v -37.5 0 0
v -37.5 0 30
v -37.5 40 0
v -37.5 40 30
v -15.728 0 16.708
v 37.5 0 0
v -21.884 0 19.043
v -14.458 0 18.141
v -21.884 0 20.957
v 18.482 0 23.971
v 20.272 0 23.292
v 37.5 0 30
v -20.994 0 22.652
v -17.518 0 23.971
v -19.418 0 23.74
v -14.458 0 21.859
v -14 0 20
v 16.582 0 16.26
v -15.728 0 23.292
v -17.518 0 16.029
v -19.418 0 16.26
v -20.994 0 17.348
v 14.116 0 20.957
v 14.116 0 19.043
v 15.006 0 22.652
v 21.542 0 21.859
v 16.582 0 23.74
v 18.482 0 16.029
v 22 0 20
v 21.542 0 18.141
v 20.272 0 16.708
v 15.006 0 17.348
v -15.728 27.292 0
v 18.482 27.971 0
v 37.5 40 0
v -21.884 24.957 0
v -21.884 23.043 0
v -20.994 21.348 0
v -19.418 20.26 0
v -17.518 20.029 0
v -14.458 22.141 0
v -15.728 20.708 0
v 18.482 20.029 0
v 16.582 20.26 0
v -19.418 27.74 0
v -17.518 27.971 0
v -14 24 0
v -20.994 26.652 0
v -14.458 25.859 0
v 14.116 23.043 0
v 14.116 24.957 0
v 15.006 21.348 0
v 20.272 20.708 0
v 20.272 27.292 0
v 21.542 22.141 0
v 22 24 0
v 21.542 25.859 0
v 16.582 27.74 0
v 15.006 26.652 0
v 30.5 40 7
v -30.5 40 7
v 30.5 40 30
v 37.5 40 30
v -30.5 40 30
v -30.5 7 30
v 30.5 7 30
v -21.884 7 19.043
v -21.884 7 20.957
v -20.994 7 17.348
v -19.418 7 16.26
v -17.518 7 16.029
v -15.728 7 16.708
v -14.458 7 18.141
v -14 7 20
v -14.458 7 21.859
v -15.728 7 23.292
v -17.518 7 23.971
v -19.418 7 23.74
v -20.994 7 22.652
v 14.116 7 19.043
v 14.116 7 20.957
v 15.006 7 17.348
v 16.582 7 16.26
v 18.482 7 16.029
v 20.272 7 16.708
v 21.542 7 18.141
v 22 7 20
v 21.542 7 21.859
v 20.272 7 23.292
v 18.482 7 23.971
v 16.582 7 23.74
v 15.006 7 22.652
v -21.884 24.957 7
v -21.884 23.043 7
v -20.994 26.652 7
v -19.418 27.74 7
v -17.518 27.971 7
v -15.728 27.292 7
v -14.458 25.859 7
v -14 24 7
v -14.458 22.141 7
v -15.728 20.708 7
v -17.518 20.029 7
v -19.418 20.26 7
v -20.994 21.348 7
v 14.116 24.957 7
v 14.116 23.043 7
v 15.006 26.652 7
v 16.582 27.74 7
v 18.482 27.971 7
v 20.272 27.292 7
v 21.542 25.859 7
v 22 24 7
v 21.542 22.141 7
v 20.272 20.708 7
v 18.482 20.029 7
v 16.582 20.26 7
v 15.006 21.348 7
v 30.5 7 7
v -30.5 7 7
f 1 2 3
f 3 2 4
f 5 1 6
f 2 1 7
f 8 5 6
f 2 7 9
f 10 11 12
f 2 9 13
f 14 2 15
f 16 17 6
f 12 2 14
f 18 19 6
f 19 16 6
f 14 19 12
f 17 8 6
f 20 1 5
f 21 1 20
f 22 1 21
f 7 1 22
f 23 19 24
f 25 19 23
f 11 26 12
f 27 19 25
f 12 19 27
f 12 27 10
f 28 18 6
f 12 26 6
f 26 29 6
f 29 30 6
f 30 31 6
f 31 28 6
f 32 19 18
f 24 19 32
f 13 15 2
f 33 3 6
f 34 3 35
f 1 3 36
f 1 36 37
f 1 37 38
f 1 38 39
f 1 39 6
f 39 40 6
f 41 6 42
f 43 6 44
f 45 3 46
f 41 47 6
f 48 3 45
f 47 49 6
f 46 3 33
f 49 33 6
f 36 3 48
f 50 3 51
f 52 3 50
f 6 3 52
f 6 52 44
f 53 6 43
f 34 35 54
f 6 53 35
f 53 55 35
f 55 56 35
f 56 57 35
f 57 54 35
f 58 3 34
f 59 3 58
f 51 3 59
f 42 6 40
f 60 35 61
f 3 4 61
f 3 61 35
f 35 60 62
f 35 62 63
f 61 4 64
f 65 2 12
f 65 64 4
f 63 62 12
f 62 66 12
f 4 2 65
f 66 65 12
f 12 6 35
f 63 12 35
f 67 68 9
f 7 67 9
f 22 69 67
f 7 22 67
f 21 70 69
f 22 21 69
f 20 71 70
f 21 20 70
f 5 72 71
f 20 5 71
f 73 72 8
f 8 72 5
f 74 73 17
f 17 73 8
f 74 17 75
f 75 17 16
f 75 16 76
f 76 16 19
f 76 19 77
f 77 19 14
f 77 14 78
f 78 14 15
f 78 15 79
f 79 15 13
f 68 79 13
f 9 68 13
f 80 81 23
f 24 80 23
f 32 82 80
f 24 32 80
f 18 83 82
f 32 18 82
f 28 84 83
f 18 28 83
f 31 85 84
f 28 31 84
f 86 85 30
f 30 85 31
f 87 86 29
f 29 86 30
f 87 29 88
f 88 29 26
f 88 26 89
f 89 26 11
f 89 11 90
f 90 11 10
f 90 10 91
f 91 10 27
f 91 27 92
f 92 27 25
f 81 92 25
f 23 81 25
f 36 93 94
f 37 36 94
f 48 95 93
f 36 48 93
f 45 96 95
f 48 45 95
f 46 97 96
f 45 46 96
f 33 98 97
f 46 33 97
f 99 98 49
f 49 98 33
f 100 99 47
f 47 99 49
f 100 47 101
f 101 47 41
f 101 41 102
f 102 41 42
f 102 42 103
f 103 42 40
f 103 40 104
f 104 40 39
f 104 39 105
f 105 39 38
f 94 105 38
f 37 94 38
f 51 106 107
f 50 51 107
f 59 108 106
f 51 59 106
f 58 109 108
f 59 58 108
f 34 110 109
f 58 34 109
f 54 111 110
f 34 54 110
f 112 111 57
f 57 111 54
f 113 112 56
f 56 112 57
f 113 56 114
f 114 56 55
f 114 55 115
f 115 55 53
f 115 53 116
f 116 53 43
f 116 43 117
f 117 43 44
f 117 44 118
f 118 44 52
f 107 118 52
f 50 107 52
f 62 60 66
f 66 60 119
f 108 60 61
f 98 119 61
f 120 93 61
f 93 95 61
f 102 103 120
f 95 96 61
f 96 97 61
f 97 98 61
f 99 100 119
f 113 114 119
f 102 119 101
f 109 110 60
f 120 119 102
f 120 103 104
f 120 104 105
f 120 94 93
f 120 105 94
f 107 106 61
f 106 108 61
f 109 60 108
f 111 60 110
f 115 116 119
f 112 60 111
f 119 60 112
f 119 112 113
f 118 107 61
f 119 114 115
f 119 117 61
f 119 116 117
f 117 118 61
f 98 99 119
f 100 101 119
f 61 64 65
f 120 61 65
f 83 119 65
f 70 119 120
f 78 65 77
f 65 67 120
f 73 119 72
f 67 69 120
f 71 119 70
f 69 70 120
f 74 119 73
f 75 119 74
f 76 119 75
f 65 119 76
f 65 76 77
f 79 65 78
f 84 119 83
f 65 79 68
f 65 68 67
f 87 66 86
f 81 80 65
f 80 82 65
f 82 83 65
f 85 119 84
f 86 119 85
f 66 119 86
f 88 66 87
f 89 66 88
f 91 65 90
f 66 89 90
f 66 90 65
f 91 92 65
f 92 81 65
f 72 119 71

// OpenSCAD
// file: includes/includes/jonaskuehling-default.scad
module teardrop (r=4.5,h=20,alpha=45,teardropcorner=0,fulldrop=false){		// tear drop hole for top-centering
											// use teardropcorner=1 for bottom horizontal corners
	render()
	translate([-h/2,0,0])
		rotate([-270,0+(teardropcorner*180),90])
			difference(){
				linear_extrude(height=h){
					circle(r, $fn=24);
					polygon(points=[[0,0],[r*cos(alpha),r*sin(alpha)],[0,r/sin(alpha)],[-r*cos(alpha),r*sin(alpha)]], paths=[[0,1,2,3]]);
				}
				if(fulldrop==false) 
					translate([0,(r/sin(alpha))/2+r,h/2]) cube([2*r+2,r/sin(alpha),h+2],center=true);
			}
}

//teardrop(4.5,22,fulldrop=true);



module teardropcentering (r=4.5,h=20,alpha=45){				// tear drop hole for top-centering
	centering_offset_factor = 1.1;
	render()
	translate([-h/2,0,0])
		rotate([-270,0,90])
			difference(){
				linear_extrude(height=h){
					circle(r, $fn=24);
					polygon(points=[[0,0],[r*cos(alpha),r*sin(alpha)],[0,r/sin(alpha)],[-r*cos(alpha),r*sin(alpha)]], paths=[[0,1,2,3]]);
				}
				translate([0,(r/sin(alpha))/2+r*centering_offset_factor,h/2]) cube([2*r+2,r/sin(alpha),h+2],center=true);
			}
}

//teardropcentering();



module teardropcentering_half (r=4.5,h=20, bottom=0,alpha=45){				// tear drop hole for top-centering
																// upper half (bottom=0) or bottom half (bottom=1)
	centering_offset_factor = 1.2;
	render()
	translate([-h/2,0,0])
		rotate([-270,0,90])
			difference(){
				linear_extrude(height=h){
					circle(r, $fn=24);
					polygon(points=[[0,0],[r*cos(alpha),r*sin(alpha)],[0,r/sin(alpha)],[-r*cos(alpha),r*sin(alpha)]], paths=[[0,1,2,3]]);
				}
				translate([0,(r/sin(alpha))/2+r*centering_offset_factor,h/2]) cube([2*r+2,r/sin(alpha),h+2],center=true);
				translate([0,-(r*centering_offset_factor)/2-0.5+bottom*(r*centering_offset_factor+1),h/2]) cube([2*r+2,r*centering_offset_factor+1,h+2],center=true);
			}
}

//teardropcentering_half(bottom=0);


module polyhole(d,h){
	n = max(round(2 * d),3);
	cylinder(h = h, r = (d / 2) / cos (180 / n), $fn = n, center=true);
}



module roundcorner(radius,edge_length){
	render()
	translate([0,0,-1])
		difference(){
			translate([-1,-1,0]) cube(size = [radius+1,radius+1,edge_length+2], center = false);
			translate(v = [radius,radius,-1]) cylinder(h = edge_length+4, r=radius, center=false);
		}
}

//roundcorner(5,5);



module roundcorner_tear(radius,edge_length){
	render()
	difference(){
		translate([-1,-1,-1]) cube(size = [edge_length+2, radius+1, radius+1], center = false);
		translate([(edge_length+4)/2-2, radius, radius])
			teardrop(radius, edge_length+4,teardropcorner=1);
	}
}

//roundcorner_tear(8,20);



module nut_trap(nut_wrench_size,trap_height,vertical=true, clearance=0.2){		// M3 wrench size = 5.5
	cornerdiameter =  (((nut_wrench_size)/2)+clearance) / cos(180/6);
	rotate([0,vertical*90,0])
		cylinder(h = trap_height, r = cornerdiameter, center=true, $fn = 6);
}



module nut_slot(nut_wrench_size,nut_height, nut_elevation,vertical=false, clearance=0.2){		// M3 wrench size = 5.5
	cornerdiameter =  (((nut_wrench_size)/2)+clearance) / cos(180/6);
	slot_height = nut_height+2*clearance;
	slot_width = nut_wrench_size+2*clearance;
	rotate([0,vertical*270,0]){
		cylinder(h = slot_height, r = cornerdiameter, center=true, $fn = 6);
		translate([0,-slot_width/2,-slot_height/2]) cube([nut_elevation+1,slot_width,slot_height]);
	}
}

//nut_slot(5.5,3,4,1);



module barbell (x1,x2,r1,r2,r3,r4) 
{
	x3=triangulate (x1,x2,r1+r3,r2+r3);
	x4=triangulate (x2,x1,r2+r4,r1+r4);
	render()
	difference ()
	{
		union()
		{
			translate(x1)
			circle (r=r1);
			translate(x2)
			circle(r=r2);
			polygon (points=[x1,x3,x2,x4]);
		}
		
		translate(x3)
		circle(r=r3,$fa=5);
		translate(x4)
		circle(r=r4,$fa=5);
	}
}

function triangulate (point1, point2, length1, length2) = 
point1 + 
length1*rotated(
atan2(point2[1]-point1[1],point2[0]-point1[0])+
angle(distance(point1,point2),length1,length2));

function distance(point1,point2)=
sqrt((point1[0]-point2[0])*(point1[0]-point2[0])+
(point1[1]-point2[1])*(point1[1]-point2[1]));

function angle(a,b,c) = acos((a*a+b*b-c*c)/(2*a*b)); 

function rotated(a)=[cos(a),sin(a),0];
// file: includes/lm8uu-holder-slim_double-vertical.scad
// LM8UU holder slim
// *********************************************
// Jonas Kühling
// http://www.jonaskuehling.de
// http://www.thingiverse.com/jonaskuehling
// *********************************************
// derived from:
// http://www.thingiverse.com/thing:14942

use <includes/jonaskuehling-default.scad>

// LM8UU/rod dimensions
LM8UU_dia = 15.4;
LM8UU_length = 24;
rod_dia = 8;

//screw/nut dimensions (M3) - hexagon socket head cap screw ISO 4762, hexagon nut ISO 4032
screw_thread_dia_iso = 3;
screw_head_dia_iso = 5.5;
nut_wrench_size_iso = 5.5;


// screw/nut dimensions for use (plus clearance for fitting purpose)
clearance_dia = 0.5;
screw_thread_dia = screw_thread_dia_iso + clearance_dia;
screw_head_dia = screw_head_dia_iso + clearance_dia;
nut_wrench_size = nut_wrench_size_iso + clearance_dia;
nut_dia_perimeter = (nut_wrench_size/cos(30));
nut_dia = nut_dia_perimeter;
nut_surround_thickness = 2;

// main body dimensions
body_wall_thickness = 2;
body_width = LM8UU_dia + (2*body_wall_thickness);
body_height = body_width;
body_length = 60;
gap_width = rod_dia + 2;
screw_bushing_space = 1;
screw_elevation = LM8UU_dia + body_wall_thickness + (screw_thread_dia/2) +screw_bushing_space;

overhang_angle = 60;
r = nut_dia_perimeter/2+nut_surround_thickness;
extra_height_varticalprint = r*sin(90-overhang_angle);

// TEST - uncomment to render in openscad:
//lm8uu_holder_slim_double_vertical();		



// main body
module lm8uu_holder_slim_double_vertical()
{
	// rotate vertical and center bearing around z-axis
	translate([0,-(LM8UU_dia/2+body_wall_thickness),body_length/2])
	rotate([-90,0,0])
	difference()
	{
		union()
		{	
			// body
			translate([-body_width/2,-body_length/2,body_height/2])
				cube([body_width,body_length,(LM8UU_dia/2)+screw_bushing_space+(screw_thread_dia/2)+extra_height_varticalprint]);
			translate([0,0,(LM8UU_dia/2)+body_wall_thickness])		
				rotate([90,0,0])
					cylinder(r=(LM8UU_dia/2)+body_wall_thickness, h=body_length, center=true);
	
			// gap support
			translate([-(gap_width/2)-body_wall_thickness,-(body_length/2),body_height/2])
				cube([body_wall_thickness,LM8UU_length,(LM8UU_dia/2)+screw_bushing_space+(screw_thread_dia/2)]);
			translate([gap_width/2,-(body_length/2),body_height/2])
				cube([body_wall_thickness,LM8UU_length,(LM8UU_dia/2)+screw_bushing_space+(screw_thread_dia/2)]);
	
			for(i=[-(body_length/2-LM8UU_length/2),(body_length/2-LM8UU_length/2)])
			{
				// nut trap surround
				translate([gap_width/2,i,screw_elevation])
					rotate([0,90,0])
						cylinder(r=(((nut_wrench_size+nut_surround_thickness*2)/cos(30))/2), h=(body_width-gap_width)/2, $fn=20);
	
				// Screw hole surround
				translate([-gap_width/2,i,screw_elevation])
					rotate([0,-90,0])
						cylinder(r=(screw_head_dia/2)+nut_surround_thickness, h=(body_width-gap_width)/2, $fn=20);
			}
		}
	
		// bushing hole
		translate([0,0,LM8UU_dia/2+2])
			rotate([90,0,0])
				polyhole(d=LM8UU_dia, h=body_length+1, center=true);
	
		// top gap
		translate([-(gap_width/2),-(body_length/2)-1,body_height/2])
			cube([gap_width,body_length+2,(LM8UU_dia/2)+screw_bushing_space+(screw_thread_dia/2)+(nut_dia/2)+nut_surround_thickness+1]);
	
		for(i=[-(body_length/2-LM8UU_length/2),(body_length/2-LM8UU_length/2)])
		{
			// screw hole (one all the way through)
			translate([0,i,screw_elevation])
				rotate([0,90,0])
					polyhole(d=screw_thread_dia, h=body_width+3, center=true);
		
			// nut trap
			translate([gap_width/2+body_wall_thickness,i,screw_elevation])
				rotate([0,90,0])
					cylinder(r=nut_dia/2, h=body_width/2-gap_width/2-body_wall_thickness+1,$fn=6);
		
			// screw head hole
			translate([-(gap_width)/2-body_wall_thickness,i,screw_elevation])
				rotate([0,-90,0])
					cylinder(r=screw_head_dia/2, h=body_width/2-gap_width/2-body_wall_thickness+1,$fn=20);

		}	
	}
}

/*
// Based on nophead research
module polyhole(d,h,center=false) {
    n = max(round(2 * d),3);
    rotate([0,0,180])
        cylinder(h = h, r = (d / 2) / cos (180 / n), center=center, $fn = n);
}
*/
// file: configuration.scad
// Harmonic drive main parameters
press_angle = 40;
flex_teeth = 50;
teeth_diff = 2;

tol = 0.25; // generic tolerance used in some places
lh = 0.3; // layer height needed in a few places

// Main geometry
bearing_r = 22/2;
bearing_h = 7;
washer_h = 1;
bolthead_h = 4;
stepper_shaft_h = 20;
circ_drive_bearing_indent = 1;
flex_bearing_indent = 1;
drive_bearing_r = 13/2;
drive_bearing_h = 7;

// Flexspline dimensions
flex_inner_r = 25.4;
flex_h = 36;
flex_bottom_h = 2;
flex_bolthole_r = 6;
flex_wt = 0.81;
flex_lip = 1;
pitch = 197;
helix_twist = 5;

// Circspline dimensions
circ_h = 20;
circ_outer_r = 34;
circ_inner_r = 30;
circ_bottom_h = 4;
// Negative clearance cuts a bit from the top of the teeth
circ_tooth_clearance = -0.5;

// Wave driver dimensions
wave_radius = 52.75/2;
driver_h = 12;
driver_w = 10;
drive_bearing_spacing_r = wave_radius - drive_bearing_r;

// The total height of the drive unit, excluding the motor and flexspline base.
assy_h = 50;
stepper_shaft_l = 20;

tooth_overlap = (flex_h + circ_h) - assy_h;

// Position of the middle of the tooth overlap section on the stepper shaft.
stepper_shaft_mid_rot = circ_h - tooth_overlap/2;

echo(str("Tooth overlap: ", tooth_overlap));
echo(str("Drive midpoint on stepper shaft: ", stepper_shaft_mid_rot));

red_r = teeth_diff/flex_teeth;
echo(str("Reduction ratio: 1/", flex_teeth/teeth_diff, " (", red_r, ")"));
echo(str("With 200x16 motor, arc minutes per microstep: ", 360*60/(200*16)*red_r));
echo(str("Linear resolution (mm) for 100 mm arm: ", sin(360/(200*16)*red_r) * 100));
echo(str("Torque (N) at 100 mm for 40 Ncm motor: ", 4/red_r));
echo(str("Linear speed equivalent to standard Prusa's 300 mm/s at 100 mm: ",
         300*80 * sin(360/(200*16)*red_r) * 100));

// Circspline mount dimensions
circ_mount_r = circ_outer_r + 6;
circ_mount_h = 8;
circ_mount_1 = 45;
circ_mount_2 = 135;
circ_mount_3 = 225;

// Master arm height setting
main_arm1_height = 12;
main_arm2_height = 12;

// Arm 1st segment dimensions
arm_flex_base_bottom_h = 3;
arm_flex_base_h = 8;
arm_joint1_base_h = main_arm1_height;
arm_joint1_base_r = 15;
arm_joint1_bearing_indent = 7;
arm_large_bolthole_r=6;
arm_w = 30;
arm1_h = main_arm1_height;

// default length
length = 100;

// Truss generation parameters. The element width must be smaller than
// thickness to avoid the top becoming unprintable (triangle outlines
// over thin air)
truss_thickness = 3.5;
truss_width_coeff = 0.75;
truss_radius = 0.1;
truss_arm1 = 1.07; // Extra coefficient for arm1

// Arm 2nd segment dimensions
arm2_h = main_arm2_height;
arm_separation = arm_joint1_base_h - arm_joint1_bearing_indent 
  + bearing_h + washer_h * 2;
arm_bolthole_r=4;
arm_joint2_base_h = main_arm2_height;
arm_joint2_base_r = 15;
arm_joint3_hollow_r = 10;
arm_joint31_base_h = main_arm2_height;
arm_joint31_base_r = 15;
arm_joint31_bearing_r = 13/2;
arm_joint31_bearing_h = 5;
arm_joint31_bearing_clearance = 2;
arm_joint32_base_h = main_arm2_height;
arm_joint32_base_r = 15;
arm_joint32_tube_h_clearance = 1;
arm_joint32_tube_wt = 2;
arm_joint32_tube_groove_depth = 1;
arm_joint31_bearing_spacing = arm_joint3_hollow_r + arm_joint32_tube_wt 
  + arm_joint31_bearing_r;

echo(str("Arm final stage vertical separation: ", arm_separation));
echo(str("Arm final stage total height: ", arm_separation + 2 * arm2_h));

// Default arm lengths
arm1_length = 100;
arm2_length = 150;
arm_spacing = 75;
arm_base_maxrot = 90 - asin((circ_outer_r + arm_w/2) / arm_spacing);
arm_joint_maxrot = 150; // hand-tuned
echo(str("Arm base minimum rotation to clear other base: ", arm_base_maxrot));

// Z carriage dimensions
carr_floor = 1; // Carriage floor thickness.
carr_wt = 3; // Carriage wall thickness.
carr_truss_width = arm_spacing + bearing_r * 2 + 4; // 120;
carr_truss_depth = 15;
drive_h = assy_h + bearing_h + washer_h 
  + arm_flex_base_bottom_h; // Total length needed by the drive unit.
carr_truss_length = circ_outer_r + 1 + carr_wt + bearing_r + 2;
carr_rod_offset = -45;
carr_drive_offset = -40;
carr_top_support_thickness = 3;
carr_top_support_width = 14;
carr_top_support_length = 70;

// Z end dimensions
z_end_bottom_thickness = 7;
z_end_bottom_width = arm_spacing + 20;
z_end_bottom_length = 40;
z_end_top_length = 50;
z_end_bottom_height = 30;
z_end_rod_offset = 24; // rod center from vertical plate
// file: common.scad
include <configuration.scad>;
use <includes/parametric_involute_gear_v5.0.scad>;
use <includes/SolidReplacementTruss.scad>;
include <includes/lm8uu-holder-slim_double-vertical.scad>;

// Generic spline gear with a herringbone section
module spline_gear(number_of_teeth, circular_pitch, pressure_angle,
                   height, helix_height, twist, backlash, clearance) {
  gear(number_of_teeth=number_of_teeth,
	     circular_pitch=circular_pitch,
	     pressure_angle=pressure_angle,
	     clearance = clearance,
	     gear_thickness = height - helix_height,
   	     rim_thickness = height - helix_height,
	     rim_width = 5,
	     hub_thickness = height - helix_height,
	     hub_diameter=0,
         bore_diameter=0,
	     circles=0,
         backlash=backlash,
	     twist=0);
  translate([0, 0, height - helix_height])
    gear(number_of_teeth=number_of_teeth,
	     circular_pitch=circular_pitch,
	     pressure_angle=pressure_angle,
	     clearance = clearance,
	     gear_thickness = helix_height/2,
   	     rim_thickness = helix_height/2,
	     rim_width = 5,
	     hub_thickness = helix_height/2,
	     hub_diameter=0,
         bore_diameter=0,
	     circles=0,
         backlash=backlash,
	     twist=twist);
  rotate([0, 0, -twist])
  translate([0, 0, height - helix_height/2])
    gear(number_of_teeth=number_of_teeth,
	     circular_pitch=circular_pitch,
	     pressure_angle=pressure_angle,
	     clearance = clearance,
	     gear_thickness = helix_height/2,
   	     rim_thickness = helix_height/2,
	     rim_width = 5,
	     hub_thickness = helix_height/2,
	     hub_diameter=0,
         bore_diameter=0,
	     circles=0,
         backlash=backlash,
	     twist=-twist);
}

// Simplified module for creating flexsplines (with helix section)
module flexspline_helix_gear(height, backlash, clearance) {
  spline_gear(number_of_teeth=flex_teeth,
	     circular_pitch=pitch,
	     pressure_angle=press_angle,
	     height=height,
         helix_height=tooth_overlap,
         backlash=backlash,
         clearance = clearance,
	     twist=-helix_twist);

}

// Simplified module for creating flexsplines (without helix section)
module flexspline_gear(height, backlash, clearance) {
  gear(number_of_teeth=flex_teeth,
	     circular_pitch=pitch,
	     pressure_angle=press_angle,
	     clearance = clearance,
	     gear_thickness = height,
   	     rim_thickness = height,
	     rim_width = 5,
	     hub_thickness = height,
	     hub_diameter=0,
         bore_diameter=0,
	     circles=0,
         backlash=backlash,
	     twist=0);
}

// Variation of the truss_platform, does not try to make the edges
// vertical but instead leaves them slanted.
module my_truss_platform(length, width, height, thickness,
			 element_width, radius) 
{ 
  segments = 2*floor(width/height)+1; 
  seg_width = width/(segments+1);
    
  if (segments > 0)
    for(i = [1 : segments])
      {
	translate([0, (seg_width)*(i-1)+2*seg_width*(1+pow(-1,i))/2, 
		   (height)*(1+pow(-1,i))/2])
	  {
	    rotate([180*(1+pow(-1, i))/2, 0, 0])
	      isoc_truss(length, seg_width*2, height, thickness, 
			 element_width, radius);
	  }
      }
}

module z_end_bottom_clamp_bolts() {
  translate([0, -7, 0]) rotate([0, 90, 0]) cylinder(r=1.5, h=20);
  translate([0, 7, 0]) rotate([0, 90, 0]) cylinder(r=1.5, h=20);  
}
// main file
include <common.scad>;

module z_end_support() {
  difference() {
    union() {
      translate([-arm_spacing/2, 0, 0])
        cube([arm_spacing, z_end_bottom_length, z_end_bottom_height]);
    }
    translate([-arm_spacing/2 + z_end_bottom_thickness, 
               z_end_bottom_thickness, z_end_bottom_thickness])
      cube([arm_spacing - z_end_bottom_thickness * 2, z_end_bottom_length, 
	    z_end_bottom_height]);
    translate([18, 24, 0]) cylinder(r=4, h=20);
    translate([-18, 24, 0]) cylinder(r=4, h=20);
    translate([0, 10, -4]) rotate([90, 0, 0]) {
      translate([18, 24, 0]) cylinder(r=4, h=20);
      translate([-18, 24, 0]) cylinder(r=4, h=20);
    }
  }
}

z_end_support();
